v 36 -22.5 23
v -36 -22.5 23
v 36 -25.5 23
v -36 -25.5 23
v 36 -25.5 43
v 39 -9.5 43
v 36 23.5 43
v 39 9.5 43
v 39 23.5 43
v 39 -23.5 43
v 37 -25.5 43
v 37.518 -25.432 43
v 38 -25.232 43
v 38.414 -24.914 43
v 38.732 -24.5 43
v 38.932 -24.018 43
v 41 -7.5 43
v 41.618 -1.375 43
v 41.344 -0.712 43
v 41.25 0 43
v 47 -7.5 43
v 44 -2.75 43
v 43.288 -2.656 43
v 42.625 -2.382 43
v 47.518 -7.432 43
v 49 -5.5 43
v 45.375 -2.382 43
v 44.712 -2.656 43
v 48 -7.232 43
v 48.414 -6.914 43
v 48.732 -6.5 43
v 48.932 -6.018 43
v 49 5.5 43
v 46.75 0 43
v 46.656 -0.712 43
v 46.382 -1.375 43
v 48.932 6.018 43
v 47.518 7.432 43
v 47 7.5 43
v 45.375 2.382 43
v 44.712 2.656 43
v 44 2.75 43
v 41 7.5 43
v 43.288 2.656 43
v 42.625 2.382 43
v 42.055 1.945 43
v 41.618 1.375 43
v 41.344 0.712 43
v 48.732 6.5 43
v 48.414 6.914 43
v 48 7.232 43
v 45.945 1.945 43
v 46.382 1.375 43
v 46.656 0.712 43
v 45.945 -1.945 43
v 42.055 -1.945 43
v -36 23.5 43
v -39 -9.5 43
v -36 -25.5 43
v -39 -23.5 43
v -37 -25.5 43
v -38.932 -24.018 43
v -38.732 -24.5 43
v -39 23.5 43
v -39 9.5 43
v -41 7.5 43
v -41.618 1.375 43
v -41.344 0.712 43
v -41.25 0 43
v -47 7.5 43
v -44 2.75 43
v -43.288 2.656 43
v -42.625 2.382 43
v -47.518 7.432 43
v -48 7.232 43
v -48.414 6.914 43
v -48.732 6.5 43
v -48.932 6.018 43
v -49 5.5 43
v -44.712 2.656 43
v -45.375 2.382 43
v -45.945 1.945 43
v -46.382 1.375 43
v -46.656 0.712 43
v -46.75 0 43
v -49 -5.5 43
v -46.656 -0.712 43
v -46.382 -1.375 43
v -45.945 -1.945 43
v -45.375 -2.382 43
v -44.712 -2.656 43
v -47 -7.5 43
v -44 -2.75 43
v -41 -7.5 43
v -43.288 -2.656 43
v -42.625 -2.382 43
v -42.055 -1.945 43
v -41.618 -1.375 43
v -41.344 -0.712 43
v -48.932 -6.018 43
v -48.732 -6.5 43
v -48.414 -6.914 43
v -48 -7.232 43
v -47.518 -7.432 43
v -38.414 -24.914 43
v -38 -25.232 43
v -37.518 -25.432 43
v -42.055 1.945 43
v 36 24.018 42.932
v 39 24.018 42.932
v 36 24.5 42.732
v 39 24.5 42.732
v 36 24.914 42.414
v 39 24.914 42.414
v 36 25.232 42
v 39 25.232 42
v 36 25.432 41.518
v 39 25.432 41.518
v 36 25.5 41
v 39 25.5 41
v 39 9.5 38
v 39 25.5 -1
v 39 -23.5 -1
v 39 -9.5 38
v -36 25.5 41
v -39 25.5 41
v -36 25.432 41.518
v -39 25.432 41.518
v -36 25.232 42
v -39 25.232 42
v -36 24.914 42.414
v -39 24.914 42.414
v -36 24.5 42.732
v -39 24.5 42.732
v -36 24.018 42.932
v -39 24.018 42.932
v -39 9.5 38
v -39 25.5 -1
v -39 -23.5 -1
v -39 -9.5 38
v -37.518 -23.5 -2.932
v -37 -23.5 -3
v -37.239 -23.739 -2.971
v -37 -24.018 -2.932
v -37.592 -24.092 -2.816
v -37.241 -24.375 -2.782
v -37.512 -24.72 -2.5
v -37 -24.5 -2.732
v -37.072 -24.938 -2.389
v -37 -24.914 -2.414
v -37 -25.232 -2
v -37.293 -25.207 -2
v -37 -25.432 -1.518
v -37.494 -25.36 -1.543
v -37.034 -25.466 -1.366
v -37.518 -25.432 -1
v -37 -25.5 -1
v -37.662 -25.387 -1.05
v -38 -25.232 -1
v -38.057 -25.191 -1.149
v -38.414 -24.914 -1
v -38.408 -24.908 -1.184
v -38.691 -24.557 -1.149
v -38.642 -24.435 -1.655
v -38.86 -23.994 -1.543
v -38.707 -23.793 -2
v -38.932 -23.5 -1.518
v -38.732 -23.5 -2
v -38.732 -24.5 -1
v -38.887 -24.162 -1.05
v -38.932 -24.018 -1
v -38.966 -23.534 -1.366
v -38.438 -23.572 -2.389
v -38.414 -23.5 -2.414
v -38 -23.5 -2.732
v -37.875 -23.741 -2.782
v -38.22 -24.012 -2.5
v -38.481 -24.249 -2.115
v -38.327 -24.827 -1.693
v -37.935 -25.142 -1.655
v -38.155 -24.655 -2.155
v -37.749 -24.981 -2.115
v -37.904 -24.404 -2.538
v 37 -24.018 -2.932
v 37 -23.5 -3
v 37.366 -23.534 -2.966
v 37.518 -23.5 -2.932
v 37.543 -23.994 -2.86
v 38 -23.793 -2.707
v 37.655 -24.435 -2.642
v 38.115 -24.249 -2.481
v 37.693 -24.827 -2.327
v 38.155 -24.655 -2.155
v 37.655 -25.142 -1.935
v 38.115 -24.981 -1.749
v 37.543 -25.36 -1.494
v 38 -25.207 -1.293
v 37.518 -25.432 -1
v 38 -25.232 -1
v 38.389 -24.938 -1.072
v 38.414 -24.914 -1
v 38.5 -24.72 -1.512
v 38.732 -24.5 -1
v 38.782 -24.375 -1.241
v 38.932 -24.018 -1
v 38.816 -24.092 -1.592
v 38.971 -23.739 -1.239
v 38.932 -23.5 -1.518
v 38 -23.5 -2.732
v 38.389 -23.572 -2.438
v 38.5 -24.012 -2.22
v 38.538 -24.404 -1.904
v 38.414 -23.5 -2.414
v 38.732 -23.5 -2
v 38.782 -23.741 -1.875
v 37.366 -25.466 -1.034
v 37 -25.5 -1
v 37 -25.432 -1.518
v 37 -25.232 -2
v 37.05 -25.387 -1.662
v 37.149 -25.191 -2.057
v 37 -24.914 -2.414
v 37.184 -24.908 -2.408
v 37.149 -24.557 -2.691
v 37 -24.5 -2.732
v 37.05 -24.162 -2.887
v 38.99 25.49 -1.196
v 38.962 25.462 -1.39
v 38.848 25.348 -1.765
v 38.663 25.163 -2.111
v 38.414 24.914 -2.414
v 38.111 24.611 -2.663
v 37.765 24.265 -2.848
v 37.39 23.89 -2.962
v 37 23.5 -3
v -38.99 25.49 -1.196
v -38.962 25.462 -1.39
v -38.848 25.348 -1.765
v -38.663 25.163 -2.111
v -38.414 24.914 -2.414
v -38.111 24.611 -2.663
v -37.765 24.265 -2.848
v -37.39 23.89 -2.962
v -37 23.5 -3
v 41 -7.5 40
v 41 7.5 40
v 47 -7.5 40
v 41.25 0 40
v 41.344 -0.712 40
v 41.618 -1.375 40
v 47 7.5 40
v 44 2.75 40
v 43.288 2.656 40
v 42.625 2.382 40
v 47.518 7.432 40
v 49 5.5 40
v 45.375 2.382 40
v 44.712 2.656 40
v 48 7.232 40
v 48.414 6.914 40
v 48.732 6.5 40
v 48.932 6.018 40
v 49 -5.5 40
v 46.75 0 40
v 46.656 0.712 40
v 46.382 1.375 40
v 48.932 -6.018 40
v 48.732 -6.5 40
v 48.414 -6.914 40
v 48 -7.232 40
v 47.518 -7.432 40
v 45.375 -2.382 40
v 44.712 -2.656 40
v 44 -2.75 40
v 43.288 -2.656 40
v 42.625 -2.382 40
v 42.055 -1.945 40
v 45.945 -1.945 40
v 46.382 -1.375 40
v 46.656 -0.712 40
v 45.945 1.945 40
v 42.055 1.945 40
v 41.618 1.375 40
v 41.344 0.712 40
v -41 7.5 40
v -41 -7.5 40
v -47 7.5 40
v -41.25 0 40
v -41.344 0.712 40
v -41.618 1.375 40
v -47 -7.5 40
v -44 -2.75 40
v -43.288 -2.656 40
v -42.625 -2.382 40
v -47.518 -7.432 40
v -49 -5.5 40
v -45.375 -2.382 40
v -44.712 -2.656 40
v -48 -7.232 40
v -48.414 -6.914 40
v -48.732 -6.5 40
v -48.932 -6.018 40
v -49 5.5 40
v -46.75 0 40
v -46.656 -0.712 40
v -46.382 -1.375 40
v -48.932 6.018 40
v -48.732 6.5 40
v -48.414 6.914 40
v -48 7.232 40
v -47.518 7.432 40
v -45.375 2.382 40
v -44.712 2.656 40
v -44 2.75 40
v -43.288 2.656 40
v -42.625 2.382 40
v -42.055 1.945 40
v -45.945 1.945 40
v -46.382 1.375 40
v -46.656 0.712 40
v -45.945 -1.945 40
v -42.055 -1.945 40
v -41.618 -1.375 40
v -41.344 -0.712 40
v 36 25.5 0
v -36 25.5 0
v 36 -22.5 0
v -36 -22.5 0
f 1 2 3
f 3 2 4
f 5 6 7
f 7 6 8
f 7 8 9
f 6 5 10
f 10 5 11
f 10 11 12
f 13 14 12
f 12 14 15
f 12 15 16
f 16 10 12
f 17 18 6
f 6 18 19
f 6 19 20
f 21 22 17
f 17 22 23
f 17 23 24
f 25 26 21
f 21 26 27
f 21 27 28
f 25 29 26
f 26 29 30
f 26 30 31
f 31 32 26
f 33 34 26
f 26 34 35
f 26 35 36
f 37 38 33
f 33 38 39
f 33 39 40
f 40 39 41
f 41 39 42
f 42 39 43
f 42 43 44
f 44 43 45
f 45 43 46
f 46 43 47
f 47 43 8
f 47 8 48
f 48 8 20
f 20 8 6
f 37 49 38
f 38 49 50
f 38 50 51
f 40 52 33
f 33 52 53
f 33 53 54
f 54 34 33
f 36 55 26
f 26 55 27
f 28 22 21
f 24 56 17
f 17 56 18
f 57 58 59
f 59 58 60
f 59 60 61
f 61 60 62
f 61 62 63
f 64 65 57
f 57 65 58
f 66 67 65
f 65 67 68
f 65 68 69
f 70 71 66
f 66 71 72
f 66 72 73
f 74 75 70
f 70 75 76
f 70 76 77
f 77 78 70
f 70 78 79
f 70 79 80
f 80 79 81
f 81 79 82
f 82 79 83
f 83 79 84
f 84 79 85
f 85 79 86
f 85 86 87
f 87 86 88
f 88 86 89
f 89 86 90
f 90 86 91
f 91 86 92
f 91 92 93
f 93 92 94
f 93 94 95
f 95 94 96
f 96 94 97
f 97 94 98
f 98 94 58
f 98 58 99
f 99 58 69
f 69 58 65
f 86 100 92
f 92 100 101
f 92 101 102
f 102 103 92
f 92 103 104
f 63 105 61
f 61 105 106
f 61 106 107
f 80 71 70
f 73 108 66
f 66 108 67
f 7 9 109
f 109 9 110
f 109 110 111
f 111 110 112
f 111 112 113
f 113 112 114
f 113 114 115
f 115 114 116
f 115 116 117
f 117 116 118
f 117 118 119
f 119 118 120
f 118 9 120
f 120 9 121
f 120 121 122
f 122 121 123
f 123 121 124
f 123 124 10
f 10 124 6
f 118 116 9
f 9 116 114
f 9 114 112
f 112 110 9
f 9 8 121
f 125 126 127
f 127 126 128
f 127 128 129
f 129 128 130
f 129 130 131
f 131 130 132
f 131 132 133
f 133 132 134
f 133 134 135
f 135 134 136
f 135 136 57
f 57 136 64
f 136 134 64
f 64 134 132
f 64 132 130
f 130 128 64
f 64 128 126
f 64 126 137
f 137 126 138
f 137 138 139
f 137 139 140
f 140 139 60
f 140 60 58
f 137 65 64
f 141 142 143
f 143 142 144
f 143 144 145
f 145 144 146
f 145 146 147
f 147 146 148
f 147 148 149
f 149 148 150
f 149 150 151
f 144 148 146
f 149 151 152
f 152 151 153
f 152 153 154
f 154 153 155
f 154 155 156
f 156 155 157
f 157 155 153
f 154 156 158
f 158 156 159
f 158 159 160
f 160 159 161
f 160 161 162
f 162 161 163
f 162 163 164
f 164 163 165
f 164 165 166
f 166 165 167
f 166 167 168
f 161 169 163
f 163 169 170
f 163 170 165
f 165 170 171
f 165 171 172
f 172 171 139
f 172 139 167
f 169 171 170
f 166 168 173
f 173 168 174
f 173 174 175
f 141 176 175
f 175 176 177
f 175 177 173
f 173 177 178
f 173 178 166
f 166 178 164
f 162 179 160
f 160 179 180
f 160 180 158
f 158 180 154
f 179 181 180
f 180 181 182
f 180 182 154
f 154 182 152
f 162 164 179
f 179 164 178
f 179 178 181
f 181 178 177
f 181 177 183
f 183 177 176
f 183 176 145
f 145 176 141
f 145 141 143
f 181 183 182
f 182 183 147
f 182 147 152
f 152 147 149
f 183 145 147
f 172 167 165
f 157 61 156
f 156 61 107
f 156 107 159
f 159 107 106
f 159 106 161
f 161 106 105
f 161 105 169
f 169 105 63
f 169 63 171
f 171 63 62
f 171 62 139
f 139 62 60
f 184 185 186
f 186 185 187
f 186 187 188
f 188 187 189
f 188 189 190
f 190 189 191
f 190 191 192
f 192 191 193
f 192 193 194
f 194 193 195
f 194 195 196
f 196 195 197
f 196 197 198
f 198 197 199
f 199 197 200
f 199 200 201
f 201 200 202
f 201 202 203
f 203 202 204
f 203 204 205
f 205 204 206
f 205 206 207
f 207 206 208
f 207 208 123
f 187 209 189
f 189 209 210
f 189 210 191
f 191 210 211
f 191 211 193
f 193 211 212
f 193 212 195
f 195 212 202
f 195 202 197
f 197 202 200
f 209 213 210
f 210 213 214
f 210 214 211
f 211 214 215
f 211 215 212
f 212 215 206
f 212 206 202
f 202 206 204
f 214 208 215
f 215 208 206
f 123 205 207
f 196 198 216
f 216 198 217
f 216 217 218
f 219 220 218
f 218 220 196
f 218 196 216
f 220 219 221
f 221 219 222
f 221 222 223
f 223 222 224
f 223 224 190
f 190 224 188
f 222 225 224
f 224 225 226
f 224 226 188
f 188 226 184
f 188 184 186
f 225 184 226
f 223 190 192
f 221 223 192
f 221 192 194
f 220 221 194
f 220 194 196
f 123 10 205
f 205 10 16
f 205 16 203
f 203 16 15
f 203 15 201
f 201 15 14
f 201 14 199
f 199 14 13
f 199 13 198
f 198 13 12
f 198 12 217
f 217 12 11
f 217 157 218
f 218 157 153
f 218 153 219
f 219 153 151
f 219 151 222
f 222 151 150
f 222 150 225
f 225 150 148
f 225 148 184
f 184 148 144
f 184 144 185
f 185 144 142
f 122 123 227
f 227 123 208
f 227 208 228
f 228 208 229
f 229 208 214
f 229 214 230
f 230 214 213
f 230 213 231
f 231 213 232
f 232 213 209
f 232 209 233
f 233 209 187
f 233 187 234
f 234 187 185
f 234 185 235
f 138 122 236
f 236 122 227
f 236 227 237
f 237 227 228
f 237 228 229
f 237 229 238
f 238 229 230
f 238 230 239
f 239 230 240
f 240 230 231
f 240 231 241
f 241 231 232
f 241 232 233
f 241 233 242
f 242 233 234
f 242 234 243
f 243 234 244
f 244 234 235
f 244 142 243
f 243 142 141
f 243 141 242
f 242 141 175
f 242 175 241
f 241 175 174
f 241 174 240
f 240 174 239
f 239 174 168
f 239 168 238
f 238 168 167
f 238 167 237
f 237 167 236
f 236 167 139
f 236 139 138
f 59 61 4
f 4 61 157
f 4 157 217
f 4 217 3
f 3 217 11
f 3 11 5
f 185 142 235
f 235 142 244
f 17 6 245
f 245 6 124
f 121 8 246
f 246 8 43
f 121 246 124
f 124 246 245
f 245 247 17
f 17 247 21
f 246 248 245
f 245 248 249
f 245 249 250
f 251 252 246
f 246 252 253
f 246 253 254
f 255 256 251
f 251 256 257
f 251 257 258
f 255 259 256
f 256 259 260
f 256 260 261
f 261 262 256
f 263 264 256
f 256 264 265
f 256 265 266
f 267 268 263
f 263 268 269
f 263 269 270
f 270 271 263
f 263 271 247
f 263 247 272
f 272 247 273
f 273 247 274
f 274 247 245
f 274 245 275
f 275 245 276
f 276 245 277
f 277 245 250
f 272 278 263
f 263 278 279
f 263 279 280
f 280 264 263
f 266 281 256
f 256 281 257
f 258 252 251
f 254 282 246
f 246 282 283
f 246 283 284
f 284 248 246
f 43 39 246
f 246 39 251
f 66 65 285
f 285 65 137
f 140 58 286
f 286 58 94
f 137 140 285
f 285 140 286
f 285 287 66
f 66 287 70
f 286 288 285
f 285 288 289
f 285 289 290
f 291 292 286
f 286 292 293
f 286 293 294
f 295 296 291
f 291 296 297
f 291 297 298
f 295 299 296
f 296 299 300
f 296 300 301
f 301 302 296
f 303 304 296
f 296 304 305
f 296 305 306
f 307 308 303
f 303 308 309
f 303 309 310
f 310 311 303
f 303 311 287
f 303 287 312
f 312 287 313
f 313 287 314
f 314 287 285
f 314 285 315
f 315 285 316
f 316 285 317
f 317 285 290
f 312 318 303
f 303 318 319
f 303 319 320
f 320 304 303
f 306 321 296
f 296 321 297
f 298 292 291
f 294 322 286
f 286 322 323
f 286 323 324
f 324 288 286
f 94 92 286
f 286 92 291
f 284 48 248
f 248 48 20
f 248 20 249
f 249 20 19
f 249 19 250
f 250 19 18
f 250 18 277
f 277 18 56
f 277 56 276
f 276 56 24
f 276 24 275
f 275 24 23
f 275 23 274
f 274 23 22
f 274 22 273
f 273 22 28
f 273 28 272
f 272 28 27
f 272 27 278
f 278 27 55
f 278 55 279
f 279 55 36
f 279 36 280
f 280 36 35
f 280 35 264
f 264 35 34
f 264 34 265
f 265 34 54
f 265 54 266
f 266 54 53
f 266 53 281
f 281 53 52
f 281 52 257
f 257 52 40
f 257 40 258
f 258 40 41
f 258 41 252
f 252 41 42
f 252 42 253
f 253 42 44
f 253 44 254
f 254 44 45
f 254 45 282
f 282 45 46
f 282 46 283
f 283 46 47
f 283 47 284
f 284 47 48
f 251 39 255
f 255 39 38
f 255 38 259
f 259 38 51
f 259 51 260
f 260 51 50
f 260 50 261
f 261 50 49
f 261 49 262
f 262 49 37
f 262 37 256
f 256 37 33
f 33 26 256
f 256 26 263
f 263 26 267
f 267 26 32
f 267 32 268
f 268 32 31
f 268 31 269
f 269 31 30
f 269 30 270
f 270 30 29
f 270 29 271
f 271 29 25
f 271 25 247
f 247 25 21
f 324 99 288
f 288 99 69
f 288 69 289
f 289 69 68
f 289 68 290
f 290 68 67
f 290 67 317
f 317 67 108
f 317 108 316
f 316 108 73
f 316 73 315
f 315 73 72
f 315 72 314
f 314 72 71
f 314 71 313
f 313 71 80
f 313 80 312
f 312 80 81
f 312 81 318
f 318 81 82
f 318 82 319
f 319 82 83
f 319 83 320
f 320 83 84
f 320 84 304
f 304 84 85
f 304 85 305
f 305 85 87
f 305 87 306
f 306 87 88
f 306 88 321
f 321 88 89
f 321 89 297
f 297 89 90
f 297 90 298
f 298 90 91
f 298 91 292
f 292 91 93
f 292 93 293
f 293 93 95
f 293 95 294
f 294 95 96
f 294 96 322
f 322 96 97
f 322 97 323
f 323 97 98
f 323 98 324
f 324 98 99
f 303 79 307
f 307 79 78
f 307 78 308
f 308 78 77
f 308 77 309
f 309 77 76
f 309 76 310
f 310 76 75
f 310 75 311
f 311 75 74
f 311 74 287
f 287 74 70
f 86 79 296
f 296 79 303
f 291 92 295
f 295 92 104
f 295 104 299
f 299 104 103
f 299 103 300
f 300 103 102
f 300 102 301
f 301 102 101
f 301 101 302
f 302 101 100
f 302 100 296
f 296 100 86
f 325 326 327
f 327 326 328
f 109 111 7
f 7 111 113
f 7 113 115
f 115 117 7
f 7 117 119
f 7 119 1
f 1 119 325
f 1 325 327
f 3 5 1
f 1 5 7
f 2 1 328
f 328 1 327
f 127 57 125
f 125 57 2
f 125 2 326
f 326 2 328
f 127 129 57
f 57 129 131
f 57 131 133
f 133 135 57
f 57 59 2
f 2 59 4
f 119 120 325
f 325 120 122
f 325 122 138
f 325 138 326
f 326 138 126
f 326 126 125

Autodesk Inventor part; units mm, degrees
ref_plane "YZ Plane" through (0, 0, 0) normal (1, 0, 0) x (0, 1, 0)
ref_plane "XZ Plane" through (0, 0, 0) normal (0, 1, 0) x (-1, 0, 0)
ref_plane "XY Plane" through (0, 0, 0) normal (0, 0, 1) x (1, 0, 0)
sketch "Sketch1" plane through (0, 0, 0) normal (0, 0, 1) x (1, 0, 0)
  line L0 (-36, 22.5) -> (36, 22.5)
  line L1 (36, 22.5) -> (36, -22.5)
  line L2 (36, -22.5) -> (-36, -22.5)
  line L3 (-36, -22.5) -> (-36, 22.5)
  line L4 (-36, 22.5) -> (36, -22.5) construction
  line L5 (36, 22.5) -> (-36, -22.5) construction
  line L6 (39, 25.5) -> (-39, 25.5)
  line L7 (-39, 25.5) -> (-39, -25.5)
  line L8 (-39, -25.5) -> (39, -25.5)
  line L9 (39, -25.5) -> (39, 25.5)
  point P0 (0, 0)
  dimension "d0" = 72
  dimension "d1" = 45
  dimension "d2" = 3
extrude "Extrusion1" add sketch "Sketch1" along normal blind 43
sketch "Sketch2" plane through (0, 0, 0) normal (0, 0, -1) x (-1, 0, 0)
  line L0 (-39, 25.5) -> (39, 25.5) projected
  line L1 (39, 25.5) -> (39, -25.5) projected
  line L2 (-39, 25.5) -> (39, 25.5)
  line L3 (39, 25.5) -> (39, -25.5)
  line L4 (39, -25.5) -> (-39, -25.5)
  line L5 (-39, -25.5) -> (-39, 25.5)
  point P0 (0, 0)
extrude "Extrusion2" add sketch "Sketch2" along normal blind 3
sketch "Sketch3" plane through (-39, 25.5, 43) normal (0, 1, 0) x (1, 0, 0)
  line L0 (3, 43) -> (75, 43) projected
  line L1 (75, 43) -> (75, 0) projected
  line L2 (3, 43) -> (75, 43)
  line L3 (75, 43) -> (75, 0)
  line L4 (75, 0) -> (3, 0)
  line L5 (3, 0) -> (3, 43)
  point P0 (39, 43)
extrude "Extrusion3" cut sketch "Sketch3" against normal up to surface (3 mm away)
ref_plane "Work Plane1" through (0, -25.5, 43) normal (-1, 0, 0) x (0, 0, 1)
sketch "Sketch5" plane through (0, 0, 43) normal (0, 0, 1) x (1, 0, 0)
  line L0 (-39, -25.5) -> (-39, 25.5) projected
  line L1 (-39, 7.5) -> (-47, 7.5)
  line L2 (-49, 5.5) -> (-49, -5.5)
  line L3 (-47, -7.5) -> (-39, -7.5)
  line L4 (-39, -7.5) -> (-39, 7.5)
  line L5 (-36, 25.5) -> (-39, 25.5) projected
  circle A0 centre (-44, 0) radius 2.75
  arc A1 (-49, -5.5) -> (-47, -7.5) centre (-47, -5.5) ccw
  arc A2 (-47, 7.5) -> (-49, 5.5) centre (-47, 5.5) ccw
  point P0 (0, 0)
  point P1 (-49, -7.5)
  point P2 (-49, 7.5)
  dimension "d12" = 10
  dimension "d13" = 15
  dimension "d14" = 18
  dimension "d17" = 5.5
  dimension "d18" = 5
  dimension "d21" = 2
extrude "Extrusion5" add sketch "Sketch5" against normal blind 3
mirror "Mirror1" about plane through (0, -25.5, 43) normal (-1, 0, 0) of "Extrusion5"
chamfer "Chamfer1" distance 2 angle 45 6 edges at (-39, 0, 40) (-39, 7.5, 41.5) (-39, -7.5, 41.5) (39, 0, 40) (39, -7.5, 41.5) (39, 7.5, 41.5)
fillet "Fillet1" radius 2 8 edges at (39, 0, -3) (-39, 0, -3) (-39, -25.5, 20) (0, -25.5, -3) (39, -25.5, 20) (0, 25.5, -3) (-37.5, 25.5, 43) (37.5, 25.5, 43)
sketch "Sketch7" plane through (-37, -25.5, -1) normal (0, -1, 0) x (1, 0, 0)
  line L0 (73, 44) -> (1, 44) projected
  line L1 (1, 1) -> (1, 44) projected
  line L2 (73, 44) -> (1, 44)
  line L3 (1, 44) -> (1, 24)
  line L4 (1, 24) -> (73, 24)
  line L5 (73, 24) -> (73, 44)
  point P0 (37, 1)
  dimension "d26" = 20
extrude "Extrusion6" cut sketch "Sketch7" against normal up to surface (3 mm away)
equation "\"d18\" = 0.5 * d12"
properties part number "Eletronica - protecaoFonte"
